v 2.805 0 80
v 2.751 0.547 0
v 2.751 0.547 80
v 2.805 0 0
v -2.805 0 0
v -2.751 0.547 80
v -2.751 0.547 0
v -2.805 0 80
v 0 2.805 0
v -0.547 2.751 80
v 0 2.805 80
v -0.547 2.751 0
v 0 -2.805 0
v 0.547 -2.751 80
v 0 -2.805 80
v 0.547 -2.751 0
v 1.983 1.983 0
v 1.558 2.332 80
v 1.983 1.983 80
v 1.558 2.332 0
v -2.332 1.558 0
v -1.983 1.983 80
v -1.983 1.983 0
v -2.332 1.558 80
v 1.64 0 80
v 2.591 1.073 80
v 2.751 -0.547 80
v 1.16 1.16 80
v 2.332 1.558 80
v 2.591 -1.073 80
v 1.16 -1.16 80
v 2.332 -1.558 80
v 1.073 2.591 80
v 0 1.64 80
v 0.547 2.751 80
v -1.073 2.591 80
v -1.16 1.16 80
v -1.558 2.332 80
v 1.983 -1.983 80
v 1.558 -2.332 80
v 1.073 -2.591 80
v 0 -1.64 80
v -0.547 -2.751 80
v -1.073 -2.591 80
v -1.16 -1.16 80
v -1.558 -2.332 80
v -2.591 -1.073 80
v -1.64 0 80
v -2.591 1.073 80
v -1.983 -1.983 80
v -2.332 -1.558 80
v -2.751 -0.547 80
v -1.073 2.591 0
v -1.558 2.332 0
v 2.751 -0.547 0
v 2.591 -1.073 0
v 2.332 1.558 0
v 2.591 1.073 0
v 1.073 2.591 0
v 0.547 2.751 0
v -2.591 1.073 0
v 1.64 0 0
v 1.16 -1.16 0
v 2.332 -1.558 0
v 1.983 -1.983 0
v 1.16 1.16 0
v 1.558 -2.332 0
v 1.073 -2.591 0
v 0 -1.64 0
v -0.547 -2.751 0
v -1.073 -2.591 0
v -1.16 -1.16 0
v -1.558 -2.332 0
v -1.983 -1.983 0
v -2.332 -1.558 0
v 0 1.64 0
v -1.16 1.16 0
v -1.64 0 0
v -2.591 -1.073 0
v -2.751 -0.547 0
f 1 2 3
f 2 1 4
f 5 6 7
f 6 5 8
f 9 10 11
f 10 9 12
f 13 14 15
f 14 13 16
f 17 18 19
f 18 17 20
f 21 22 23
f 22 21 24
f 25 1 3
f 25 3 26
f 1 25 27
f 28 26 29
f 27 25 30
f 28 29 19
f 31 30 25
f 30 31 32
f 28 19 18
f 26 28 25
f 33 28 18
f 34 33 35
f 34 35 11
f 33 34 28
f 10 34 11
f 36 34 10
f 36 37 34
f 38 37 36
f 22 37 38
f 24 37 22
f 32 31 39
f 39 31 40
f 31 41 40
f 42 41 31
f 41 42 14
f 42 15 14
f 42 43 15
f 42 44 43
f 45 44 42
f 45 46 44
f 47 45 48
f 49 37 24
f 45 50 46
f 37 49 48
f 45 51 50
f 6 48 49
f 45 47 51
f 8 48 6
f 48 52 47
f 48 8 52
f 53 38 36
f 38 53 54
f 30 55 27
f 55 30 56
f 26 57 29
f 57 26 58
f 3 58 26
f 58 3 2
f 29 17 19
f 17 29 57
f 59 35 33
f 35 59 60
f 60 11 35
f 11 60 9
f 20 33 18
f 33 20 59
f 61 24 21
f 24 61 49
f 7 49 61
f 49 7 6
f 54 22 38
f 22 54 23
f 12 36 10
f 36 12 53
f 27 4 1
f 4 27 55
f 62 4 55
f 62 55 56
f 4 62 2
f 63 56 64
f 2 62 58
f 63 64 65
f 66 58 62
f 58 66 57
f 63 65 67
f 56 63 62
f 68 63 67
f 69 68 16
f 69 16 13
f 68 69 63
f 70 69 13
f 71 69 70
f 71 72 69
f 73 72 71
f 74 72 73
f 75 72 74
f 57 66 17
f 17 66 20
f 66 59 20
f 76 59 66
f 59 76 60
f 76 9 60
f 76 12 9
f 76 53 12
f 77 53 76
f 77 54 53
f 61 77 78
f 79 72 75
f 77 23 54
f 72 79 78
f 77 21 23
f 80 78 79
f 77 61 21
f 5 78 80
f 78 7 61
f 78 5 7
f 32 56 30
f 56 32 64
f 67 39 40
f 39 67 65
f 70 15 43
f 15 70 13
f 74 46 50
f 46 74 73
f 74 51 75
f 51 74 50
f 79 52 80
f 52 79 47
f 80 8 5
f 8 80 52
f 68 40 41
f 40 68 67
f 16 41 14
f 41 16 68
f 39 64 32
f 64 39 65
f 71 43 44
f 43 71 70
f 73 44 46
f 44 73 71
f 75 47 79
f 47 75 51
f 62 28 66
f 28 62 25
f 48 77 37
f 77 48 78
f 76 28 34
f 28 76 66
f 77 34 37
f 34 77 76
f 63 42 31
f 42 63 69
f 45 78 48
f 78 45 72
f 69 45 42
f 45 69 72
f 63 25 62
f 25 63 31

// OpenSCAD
module standoff(height, screw, screw_cover) {
    difference() {
        cylinder(
            h=height,
            r1=(screw + screw_cover) / 2,
            r2=(screw + screw_cover) / 2,
            $fn=32
        );
        translate([0, 0, -1]) {
            cylinder(
                h=height * 2,
                r1=screw / 2,
                r2=screw / 2,
                $fn=8
            );
        }
    }
}


// Standoffs
screw = 3.28;
screw_cover = 2.33;
height = 80;

standoff(height, screw, screw_cover);
